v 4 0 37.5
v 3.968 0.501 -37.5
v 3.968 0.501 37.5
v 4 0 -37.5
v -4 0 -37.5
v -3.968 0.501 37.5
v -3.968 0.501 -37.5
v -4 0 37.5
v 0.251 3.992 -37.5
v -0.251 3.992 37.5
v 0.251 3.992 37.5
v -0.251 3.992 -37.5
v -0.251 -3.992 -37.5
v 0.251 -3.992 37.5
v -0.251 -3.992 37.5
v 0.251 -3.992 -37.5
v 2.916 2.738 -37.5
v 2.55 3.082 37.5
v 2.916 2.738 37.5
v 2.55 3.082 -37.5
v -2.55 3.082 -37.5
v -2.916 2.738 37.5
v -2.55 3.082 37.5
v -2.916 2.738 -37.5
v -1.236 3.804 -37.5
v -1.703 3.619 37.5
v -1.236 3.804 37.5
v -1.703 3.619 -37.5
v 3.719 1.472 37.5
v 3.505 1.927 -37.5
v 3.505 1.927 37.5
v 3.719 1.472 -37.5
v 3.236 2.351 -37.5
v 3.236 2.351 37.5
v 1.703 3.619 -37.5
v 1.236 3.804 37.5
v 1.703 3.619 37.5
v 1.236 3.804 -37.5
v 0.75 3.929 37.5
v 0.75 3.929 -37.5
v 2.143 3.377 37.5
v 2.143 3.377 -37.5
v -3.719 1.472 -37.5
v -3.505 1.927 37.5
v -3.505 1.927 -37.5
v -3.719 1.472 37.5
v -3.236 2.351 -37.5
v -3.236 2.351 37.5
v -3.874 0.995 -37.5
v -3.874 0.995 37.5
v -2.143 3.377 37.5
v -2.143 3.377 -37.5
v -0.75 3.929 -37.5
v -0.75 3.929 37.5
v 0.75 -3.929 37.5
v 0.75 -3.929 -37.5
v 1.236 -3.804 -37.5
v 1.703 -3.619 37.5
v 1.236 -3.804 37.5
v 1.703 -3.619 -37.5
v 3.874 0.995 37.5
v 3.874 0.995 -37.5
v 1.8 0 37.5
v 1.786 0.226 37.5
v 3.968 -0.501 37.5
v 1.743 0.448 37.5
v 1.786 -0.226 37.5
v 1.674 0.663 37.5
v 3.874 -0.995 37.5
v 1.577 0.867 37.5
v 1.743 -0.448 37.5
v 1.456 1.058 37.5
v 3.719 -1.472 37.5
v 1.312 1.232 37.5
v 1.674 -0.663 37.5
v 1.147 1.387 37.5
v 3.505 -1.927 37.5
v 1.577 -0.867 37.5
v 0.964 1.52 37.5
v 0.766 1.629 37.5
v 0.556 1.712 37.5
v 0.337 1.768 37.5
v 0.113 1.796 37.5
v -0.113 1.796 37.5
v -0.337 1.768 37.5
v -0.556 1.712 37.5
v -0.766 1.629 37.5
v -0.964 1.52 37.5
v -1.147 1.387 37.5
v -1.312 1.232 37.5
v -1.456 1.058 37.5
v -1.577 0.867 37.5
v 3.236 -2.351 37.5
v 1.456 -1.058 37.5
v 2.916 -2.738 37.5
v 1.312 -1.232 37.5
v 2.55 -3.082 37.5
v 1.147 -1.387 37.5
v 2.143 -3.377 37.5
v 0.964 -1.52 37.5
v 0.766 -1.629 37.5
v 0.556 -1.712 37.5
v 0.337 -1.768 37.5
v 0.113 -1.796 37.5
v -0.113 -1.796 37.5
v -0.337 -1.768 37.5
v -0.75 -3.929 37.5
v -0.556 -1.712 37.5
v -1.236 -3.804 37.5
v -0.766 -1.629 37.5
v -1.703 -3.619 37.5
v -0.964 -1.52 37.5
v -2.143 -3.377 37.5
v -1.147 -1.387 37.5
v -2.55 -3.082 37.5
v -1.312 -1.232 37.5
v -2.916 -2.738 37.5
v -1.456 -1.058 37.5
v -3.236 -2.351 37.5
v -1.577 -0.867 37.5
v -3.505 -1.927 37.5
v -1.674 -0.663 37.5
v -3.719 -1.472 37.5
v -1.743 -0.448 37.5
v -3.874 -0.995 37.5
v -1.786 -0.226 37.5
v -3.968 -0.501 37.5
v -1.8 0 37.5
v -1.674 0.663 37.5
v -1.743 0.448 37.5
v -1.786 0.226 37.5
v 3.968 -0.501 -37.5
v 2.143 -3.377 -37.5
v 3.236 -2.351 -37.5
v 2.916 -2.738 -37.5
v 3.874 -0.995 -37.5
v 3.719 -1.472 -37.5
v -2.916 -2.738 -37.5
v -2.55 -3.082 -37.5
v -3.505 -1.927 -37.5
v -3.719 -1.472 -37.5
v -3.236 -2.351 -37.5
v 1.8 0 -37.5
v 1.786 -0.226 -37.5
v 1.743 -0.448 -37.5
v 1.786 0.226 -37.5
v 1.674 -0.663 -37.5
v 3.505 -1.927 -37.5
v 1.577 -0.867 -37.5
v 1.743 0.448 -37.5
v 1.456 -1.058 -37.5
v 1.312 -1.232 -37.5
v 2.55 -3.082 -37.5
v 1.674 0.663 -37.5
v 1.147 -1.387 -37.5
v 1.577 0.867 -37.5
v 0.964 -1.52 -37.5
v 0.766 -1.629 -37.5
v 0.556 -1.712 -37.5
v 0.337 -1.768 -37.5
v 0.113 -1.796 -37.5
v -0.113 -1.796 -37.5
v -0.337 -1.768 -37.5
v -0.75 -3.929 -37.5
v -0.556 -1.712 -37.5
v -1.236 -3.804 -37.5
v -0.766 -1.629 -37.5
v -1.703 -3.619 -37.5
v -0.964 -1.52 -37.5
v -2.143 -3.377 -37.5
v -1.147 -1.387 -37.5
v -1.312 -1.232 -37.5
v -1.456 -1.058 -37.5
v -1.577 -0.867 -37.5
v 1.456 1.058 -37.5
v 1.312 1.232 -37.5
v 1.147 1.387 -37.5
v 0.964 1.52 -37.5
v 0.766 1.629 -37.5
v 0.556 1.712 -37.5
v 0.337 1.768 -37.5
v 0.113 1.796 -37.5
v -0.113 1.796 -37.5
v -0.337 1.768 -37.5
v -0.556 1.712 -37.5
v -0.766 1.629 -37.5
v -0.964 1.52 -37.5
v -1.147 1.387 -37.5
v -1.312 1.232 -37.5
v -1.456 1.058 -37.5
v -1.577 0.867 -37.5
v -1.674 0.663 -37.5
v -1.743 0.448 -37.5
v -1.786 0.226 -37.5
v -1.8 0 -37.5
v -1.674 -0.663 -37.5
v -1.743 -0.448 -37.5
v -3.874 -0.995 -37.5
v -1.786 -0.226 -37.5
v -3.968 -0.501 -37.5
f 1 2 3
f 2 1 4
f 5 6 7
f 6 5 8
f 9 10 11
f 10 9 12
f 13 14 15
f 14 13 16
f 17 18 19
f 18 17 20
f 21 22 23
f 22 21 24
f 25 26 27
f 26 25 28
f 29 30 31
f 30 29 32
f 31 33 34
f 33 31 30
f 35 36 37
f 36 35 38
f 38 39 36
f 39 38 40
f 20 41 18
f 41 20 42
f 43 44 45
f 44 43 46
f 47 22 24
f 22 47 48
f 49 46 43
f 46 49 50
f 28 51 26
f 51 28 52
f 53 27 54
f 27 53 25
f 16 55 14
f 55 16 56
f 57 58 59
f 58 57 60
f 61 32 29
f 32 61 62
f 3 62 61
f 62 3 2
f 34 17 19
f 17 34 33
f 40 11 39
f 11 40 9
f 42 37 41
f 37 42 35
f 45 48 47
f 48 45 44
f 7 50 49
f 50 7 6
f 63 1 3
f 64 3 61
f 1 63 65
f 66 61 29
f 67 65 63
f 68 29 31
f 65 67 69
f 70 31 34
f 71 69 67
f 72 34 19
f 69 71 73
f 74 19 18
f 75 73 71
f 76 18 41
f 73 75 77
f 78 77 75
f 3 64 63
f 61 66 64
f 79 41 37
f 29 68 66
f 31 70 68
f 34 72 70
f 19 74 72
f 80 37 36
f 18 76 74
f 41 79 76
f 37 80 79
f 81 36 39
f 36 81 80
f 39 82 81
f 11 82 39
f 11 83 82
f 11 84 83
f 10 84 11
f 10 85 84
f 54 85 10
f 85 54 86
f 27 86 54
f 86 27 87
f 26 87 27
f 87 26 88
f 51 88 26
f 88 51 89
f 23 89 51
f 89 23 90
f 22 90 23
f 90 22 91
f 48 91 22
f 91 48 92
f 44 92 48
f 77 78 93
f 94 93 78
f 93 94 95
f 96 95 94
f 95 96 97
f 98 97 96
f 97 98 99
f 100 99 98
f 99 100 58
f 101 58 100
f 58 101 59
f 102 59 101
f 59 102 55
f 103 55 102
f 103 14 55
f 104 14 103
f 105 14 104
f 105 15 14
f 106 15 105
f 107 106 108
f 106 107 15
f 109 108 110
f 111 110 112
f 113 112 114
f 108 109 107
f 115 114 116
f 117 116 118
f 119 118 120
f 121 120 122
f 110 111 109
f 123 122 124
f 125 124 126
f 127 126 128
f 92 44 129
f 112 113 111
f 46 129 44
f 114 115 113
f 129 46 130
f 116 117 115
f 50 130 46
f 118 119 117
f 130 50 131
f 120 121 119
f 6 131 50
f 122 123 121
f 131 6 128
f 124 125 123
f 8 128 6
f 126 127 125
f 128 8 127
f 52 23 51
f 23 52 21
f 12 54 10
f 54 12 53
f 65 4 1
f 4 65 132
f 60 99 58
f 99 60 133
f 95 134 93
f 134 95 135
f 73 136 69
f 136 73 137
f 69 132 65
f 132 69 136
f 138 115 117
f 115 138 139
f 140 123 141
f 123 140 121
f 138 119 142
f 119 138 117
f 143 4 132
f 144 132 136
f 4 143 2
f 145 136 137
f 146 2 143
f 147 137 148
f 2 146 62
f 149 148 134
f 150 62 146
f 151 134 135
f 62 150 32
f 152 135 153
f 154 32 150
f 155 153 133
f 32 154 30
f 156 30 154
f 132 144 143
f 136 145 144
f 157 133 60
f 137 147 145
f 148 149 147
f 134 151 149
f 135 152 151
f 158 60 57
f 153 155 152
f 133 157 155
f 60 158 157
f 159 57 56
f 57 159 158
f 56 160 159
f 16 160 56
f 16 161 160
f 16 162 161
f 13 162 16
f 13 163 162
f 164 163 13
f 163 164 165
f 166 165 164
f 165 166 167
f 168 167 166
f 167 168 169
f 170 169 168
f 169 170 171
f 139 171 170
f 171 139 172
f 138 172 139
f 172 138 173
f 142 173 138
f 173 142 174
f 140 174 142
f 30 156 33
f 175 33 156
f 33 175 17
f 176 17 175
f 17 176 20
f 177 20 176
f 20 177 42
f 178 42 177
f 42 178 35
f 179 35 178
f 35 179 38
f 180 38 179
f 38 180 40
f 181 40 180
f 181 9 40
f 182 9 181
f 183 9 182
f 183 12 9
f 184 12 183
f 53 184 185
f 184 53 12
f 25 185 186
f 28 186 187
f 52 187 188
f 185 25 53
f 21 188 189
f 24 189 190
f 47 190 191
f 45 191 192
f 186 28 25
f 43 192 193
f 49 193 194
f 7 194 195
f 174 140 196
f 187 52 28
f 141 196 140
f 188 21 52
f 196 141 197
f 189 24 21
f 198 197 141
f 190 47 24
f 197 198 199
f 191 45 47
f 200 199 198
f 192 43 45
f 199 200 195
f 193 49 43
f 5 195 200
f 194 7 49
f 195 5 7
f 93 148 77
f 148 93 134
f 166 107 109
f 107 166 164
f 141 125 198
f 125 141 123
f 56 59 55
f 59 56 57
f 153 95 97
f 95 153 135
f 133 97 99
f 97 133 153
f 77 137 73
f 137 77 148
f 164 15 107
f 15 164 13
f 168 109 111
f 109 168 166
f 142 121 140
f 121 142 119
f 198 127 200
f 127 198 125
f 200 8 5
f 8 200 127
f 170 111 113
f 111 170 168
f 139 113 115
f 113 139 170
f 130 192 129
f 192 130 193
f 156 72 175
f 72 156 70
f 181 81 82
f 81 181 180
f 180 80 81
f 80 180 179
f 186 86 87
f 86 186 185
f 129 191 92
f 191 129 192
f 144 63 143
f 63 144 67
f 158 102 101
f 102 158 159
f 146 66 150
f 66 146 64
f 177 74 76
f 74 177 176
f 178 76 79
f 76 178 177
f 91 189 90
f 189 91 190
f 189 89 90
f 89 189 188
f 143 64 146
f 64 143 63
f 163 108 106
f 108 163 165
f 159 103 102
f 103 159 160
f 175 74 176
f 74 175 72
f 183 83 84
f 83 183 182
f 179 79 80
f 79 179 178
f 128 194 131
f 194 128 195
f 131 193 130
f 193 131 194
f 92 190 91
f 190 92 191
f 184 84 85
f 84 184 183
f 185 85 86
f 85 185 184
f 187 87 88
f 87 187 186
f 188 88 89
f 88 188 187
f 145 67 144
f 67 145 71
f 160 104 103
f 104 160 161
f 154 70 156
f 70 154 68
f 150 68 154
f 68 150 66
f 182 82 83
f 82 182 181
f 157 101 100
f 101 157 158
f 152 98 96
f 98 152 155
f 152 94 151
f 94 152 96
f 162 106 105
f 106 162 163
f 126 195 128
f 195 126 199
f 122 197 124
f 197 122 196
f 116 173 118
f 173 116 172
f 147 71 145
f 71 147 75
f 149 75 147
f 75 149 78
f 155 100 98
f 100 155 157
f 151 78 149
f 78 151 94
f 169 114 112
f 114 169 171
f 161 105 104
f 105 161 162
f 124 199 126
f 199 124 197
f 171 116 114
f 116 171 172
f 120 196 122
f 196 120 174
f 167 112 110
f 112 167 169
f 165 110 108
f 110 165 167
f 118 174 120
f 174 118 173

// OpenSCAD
$fn = 50;


difference() {
	union() {
		translate(v = [0, 0, -37.5000000000]) {
			cylinder(h = 75, r = 4.0000000000);
		}
	}
	union() {
		translate(v = [0, 0, -100.0000000000]) {
			cylinder(h = 200, r = 1.8000000000);
		}
	}
}
